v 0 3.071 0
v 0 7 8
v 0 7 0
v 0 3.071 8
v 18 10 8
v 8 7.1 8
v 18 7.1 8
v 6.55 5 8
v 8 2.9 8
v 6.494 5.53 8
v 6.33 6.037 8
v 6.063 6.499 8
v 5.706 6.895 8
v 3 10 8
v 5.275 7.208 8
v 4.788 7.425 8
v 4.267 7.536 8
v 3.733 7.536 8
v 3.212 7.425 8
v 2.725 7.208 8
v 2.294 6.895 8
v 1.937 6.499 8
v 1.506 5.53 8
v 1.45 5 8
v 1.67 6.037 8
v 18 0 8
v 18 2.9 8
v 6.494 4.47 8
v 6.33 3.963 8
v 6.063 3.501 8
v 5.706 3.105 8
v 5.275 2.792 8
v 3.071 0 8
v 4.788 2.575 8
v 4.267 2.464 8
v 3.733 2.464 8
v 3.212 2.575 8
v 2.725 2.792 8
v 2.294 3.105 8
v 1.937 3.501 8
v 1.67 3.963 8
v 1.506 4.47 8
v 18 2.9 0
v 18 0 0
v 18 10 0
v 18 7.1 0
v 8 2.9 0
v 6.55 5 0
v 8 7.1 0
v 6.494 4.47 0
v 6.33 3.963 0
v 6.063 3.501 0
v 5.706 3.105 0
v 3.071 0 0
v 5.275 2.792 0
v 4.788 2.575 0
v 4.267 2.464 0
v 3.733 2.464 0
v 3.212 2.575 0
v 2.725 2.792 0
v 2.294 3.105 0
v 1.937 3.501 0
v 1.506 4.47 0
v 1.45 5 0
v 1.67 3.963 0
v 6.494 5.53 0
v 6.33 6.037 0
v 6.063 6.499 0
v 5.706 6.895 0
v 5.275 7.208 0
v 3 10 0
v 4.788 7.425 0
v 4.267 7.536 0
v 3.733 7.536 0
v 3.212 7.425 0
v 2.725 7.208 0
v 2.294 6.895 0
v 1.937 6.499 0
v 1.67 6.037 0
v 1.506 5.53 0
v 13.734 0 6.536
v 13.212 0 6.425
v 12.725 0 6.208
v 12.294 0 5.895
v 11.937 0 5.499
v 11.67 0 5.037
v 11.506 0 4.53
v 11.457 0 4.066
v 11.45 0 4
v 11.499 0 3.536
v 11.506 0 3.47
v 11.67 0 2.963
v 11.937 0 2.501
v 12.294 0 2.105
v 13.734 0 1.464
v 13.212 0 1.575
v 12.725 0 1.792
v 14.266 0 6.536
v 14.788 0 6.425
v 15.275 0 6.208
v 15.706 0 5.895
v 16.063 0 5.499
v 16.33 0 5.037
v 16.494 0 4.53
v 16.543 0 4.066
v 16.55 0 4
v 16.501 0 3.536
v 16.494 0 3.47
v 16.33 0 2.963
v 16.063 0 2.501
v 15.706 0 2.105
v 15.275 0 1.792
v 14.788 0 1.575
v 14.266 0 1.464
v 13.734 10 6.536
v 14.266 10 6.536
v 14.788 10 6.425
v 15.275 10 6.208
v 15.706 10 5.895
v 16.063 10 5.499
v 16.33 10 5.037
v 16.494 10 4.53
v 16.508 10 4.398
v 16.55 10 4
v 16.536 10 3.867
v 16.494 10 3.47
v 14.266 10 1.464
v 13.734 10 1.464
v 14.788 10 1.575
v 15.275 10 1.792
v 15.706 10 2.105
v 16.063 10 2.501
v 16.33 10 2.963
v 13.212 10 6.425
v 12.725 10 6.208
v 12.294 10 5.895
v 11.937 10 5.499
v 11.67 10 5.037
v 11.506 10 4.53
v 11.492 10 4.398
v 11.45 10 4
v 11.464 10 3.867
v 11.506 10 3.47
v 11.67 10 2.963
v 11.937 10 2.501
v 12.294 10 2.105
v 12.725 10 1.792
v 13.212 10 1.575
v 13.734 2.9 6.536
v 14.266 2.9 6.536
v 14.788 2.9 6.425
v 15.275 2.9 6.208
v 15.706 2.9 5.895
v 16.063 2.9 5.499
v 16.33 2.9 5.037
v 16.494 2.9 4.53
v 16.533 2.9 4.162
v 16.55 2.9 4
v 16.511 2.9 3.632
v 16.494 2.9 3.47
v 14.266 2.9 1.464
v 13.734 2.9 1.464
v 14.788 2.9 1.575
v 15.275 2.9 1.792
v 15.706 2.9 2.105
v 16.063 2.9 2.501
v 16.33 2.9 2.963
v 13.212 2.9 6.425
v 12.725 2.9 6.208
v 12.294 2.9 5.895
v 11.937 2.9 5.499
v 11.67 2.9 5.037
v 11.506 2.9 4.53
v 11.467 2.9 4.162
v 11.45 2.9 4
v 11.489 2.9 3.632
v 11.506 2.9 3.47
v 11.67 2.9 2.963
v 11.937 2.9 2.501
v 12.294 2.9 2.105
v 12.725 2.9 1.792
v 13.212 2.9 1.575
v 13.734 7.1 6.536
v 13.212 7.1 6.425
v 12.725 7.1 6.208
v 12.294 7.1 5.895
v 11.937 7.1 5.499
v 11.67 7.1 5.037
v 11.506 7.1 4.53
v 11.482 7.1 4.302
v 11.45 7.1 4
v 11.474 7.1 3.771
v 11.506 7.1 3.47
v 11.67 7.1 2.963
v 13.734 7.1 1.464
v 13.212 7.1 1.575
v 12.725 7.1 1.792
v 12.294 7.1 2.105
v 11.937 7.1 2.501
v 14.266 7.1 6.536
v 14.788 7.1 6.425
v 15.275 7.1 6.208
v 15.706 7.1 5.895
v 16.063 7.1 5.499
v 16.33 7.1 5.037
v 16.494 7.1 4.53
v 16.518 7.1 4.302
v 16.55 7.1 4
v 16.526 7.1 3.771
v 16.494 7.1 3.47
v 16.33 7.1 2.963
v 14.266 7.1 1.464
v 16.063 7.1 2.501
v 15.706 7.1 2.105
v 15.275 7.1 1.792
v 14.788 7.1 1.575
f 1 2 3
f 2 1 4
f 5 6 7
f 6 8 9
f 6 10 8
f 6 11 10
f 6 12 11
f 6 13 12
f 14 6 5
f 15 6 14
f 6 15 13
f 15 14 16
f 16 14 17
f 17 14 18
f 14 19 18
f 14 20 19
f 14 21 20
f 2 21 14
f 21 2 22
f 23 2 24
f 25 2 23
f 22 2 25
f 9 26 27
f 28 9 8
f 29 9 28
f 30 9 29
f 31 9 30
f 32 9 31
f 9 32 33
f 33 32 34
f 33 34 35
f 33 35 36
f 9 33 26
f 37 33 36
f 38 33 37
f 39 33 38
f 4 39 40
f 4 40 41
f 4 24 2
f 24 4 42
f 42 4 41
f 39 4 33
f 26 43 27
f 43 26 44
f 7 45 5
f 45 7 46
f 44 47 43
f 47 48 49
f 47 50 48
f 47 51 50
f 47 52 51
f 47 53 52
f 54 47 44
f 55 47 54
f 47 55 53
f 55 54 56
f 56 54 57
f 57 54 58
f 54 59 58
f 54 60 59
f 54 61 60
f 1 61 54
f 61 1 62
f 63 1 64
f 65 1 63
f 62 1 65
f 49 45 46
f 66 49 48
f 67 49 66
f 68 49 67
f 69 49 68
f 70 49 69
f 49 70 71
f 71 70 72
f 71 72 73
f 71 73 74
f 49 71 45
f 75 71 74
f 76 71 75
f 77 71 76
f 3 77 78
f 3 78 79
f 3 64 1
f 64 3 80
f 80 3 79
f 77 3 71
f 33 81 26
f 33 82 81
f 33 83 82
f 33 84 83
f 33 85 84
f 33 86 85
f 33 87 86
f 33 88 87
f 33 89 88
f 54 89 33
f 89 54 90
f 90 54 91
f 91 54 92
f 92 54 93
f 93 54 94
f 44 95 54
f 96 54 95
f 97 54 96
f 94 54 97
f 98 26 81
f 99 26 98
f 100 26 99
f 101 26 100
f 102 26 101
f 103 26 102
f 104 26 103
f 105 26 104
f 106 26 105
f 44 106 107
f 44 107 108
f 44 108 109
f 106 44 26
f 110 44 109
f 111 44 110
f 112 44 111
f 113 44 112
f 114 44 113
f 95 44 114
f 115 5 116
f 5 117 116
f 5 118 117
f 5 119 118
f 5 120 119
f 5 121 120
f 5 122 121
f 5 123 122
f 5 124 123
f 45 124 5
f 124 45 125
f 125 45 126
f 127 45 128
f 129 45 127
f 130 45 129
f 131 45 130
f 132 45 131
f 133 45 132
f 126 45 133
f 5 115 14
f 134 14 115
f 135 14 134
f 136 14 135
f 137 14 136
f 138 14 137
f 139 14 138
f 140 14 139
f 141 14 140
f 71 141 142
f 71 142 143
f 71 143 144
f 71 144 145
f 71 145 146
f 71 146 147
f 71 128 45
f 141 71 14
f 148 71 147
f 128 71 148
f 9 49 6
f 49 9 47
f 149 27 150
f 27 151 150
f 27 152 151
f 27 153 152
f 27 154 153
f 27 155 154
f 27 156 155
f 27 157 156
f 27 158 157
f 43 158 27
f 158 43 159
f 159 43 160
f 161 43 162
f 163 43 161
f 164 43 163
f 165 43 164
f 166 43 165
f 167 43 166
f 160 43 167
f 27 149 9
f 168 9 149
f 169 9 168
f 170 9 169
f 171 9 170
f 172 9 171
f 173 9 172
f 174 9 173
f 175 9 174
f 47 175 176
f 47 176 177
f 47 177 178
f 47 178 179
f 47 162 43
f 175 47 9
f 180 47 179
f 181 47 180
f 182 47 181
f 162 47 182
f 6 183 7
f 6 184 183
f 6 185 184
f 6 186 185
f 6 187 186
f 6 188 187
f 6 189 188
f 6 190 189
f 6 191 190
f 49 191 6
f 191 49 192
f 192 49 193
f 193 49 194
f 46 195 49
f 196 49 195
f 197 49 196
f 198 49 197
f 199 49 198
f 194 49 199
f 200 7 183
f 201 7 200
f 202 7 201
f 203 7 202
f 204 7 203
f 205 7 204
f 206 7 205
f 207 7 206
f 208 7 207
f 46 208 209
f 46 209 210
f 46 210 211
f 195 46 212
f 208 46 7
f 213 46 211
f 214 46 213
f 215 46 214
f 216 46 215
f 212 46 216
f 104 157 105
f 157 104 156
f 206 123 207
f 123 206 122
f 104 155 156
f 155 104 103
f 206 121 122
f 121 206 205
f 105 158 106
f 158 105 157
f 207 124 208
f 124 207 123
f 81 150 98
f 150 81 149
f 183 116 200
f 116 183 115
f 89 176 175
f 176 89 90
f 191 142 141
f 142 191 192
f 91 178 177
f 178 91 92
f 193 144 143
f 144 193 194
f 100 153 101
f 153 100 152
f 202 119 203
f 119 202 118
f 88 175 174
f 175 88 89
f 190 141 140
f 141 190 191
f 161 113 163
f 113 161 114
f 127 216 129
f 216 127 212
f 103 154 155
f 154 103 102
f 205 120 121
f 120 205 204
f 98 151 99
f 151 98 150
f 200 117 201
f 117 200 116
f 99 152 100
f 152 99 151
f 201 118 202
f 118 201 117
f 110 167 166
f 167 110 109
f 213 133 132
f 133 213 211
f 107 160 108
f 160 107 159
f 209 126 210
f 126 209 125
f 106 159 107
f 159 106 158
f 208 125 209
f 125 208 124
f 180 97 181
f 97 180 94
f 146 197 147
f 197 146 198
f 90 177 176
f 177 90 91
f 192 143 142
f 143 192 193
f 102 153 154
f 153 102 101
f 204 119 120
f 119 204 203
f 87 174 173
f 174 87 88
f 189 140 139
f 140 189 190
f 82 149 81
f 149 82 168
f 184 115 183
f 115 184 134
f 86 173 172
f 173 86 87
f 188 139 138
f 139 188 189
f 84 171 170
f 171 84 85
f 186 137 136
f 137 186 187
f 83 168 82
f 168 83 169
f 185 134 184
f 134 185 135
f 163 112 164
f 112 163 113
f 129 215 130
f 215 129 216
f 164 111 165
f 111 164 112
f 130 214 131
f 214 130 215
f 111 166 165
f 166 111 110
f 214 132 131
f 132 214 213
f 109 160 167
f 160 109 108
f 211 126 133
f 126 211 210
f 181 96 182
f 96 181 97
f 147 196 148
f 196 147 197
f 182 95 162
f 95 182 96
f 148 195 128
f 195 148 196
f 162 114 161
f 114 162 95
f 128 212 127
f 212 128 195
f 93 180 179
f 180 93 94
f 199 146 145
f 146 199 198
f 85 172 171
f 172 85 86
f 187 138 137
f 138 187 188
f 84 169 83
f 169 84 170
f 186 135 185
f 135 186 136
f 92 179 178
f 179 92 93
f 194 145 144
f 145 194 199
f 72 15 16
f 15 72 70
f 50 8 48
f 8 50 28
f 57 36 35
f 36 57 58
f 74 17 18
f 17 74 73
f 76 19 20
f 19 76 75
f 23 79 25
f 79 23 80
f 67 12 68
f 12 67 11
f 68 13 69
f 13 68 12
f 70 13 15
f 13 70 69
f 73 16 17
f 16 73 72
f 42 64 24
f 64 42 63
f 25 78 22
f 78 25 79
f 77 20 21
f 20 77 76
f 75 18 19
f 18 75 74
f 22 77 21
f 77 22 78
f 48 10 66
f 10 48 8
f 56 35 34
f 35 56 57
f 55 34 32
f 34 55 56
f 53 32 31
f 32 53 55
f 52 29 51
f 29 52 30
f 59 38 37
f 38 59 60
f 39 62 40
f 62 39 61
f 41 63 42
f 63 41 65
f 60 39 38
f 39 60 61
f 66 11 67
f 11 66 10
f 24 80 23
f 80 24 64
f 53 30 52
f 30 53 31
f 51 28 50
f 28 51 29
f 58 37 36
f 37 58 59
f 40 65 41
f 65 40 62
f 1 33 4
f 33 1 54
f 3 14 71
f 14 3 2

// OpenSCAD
// Description: "Joint for Tapster 2 Plus"
// Project home: http://tapsterbot.com

hole_diameter  = 5.1;
hole_radius    = hole_diameter / 2;
tolerance      = 0.2;

difference(){
    cube([18,10,8]);

    translate([8,3-(tolerance/2),-1])
    cube([16,4+tolerance,10]);

    rotate([90,0,0])
    translate([14,4,-14])
    cylinder(r=hole_radius, h=16, $fn=30);

    translate([4,5,-4])
    cylinder(r=hole_radius, h=16, $fn=30);

    translate([0,-4,-1])
    rotate([0,0,45])
    cube([5,5,10]);

    translate([0,7,-1])
    rotate([0,0,45])
    cube([5,5,10]);
}
